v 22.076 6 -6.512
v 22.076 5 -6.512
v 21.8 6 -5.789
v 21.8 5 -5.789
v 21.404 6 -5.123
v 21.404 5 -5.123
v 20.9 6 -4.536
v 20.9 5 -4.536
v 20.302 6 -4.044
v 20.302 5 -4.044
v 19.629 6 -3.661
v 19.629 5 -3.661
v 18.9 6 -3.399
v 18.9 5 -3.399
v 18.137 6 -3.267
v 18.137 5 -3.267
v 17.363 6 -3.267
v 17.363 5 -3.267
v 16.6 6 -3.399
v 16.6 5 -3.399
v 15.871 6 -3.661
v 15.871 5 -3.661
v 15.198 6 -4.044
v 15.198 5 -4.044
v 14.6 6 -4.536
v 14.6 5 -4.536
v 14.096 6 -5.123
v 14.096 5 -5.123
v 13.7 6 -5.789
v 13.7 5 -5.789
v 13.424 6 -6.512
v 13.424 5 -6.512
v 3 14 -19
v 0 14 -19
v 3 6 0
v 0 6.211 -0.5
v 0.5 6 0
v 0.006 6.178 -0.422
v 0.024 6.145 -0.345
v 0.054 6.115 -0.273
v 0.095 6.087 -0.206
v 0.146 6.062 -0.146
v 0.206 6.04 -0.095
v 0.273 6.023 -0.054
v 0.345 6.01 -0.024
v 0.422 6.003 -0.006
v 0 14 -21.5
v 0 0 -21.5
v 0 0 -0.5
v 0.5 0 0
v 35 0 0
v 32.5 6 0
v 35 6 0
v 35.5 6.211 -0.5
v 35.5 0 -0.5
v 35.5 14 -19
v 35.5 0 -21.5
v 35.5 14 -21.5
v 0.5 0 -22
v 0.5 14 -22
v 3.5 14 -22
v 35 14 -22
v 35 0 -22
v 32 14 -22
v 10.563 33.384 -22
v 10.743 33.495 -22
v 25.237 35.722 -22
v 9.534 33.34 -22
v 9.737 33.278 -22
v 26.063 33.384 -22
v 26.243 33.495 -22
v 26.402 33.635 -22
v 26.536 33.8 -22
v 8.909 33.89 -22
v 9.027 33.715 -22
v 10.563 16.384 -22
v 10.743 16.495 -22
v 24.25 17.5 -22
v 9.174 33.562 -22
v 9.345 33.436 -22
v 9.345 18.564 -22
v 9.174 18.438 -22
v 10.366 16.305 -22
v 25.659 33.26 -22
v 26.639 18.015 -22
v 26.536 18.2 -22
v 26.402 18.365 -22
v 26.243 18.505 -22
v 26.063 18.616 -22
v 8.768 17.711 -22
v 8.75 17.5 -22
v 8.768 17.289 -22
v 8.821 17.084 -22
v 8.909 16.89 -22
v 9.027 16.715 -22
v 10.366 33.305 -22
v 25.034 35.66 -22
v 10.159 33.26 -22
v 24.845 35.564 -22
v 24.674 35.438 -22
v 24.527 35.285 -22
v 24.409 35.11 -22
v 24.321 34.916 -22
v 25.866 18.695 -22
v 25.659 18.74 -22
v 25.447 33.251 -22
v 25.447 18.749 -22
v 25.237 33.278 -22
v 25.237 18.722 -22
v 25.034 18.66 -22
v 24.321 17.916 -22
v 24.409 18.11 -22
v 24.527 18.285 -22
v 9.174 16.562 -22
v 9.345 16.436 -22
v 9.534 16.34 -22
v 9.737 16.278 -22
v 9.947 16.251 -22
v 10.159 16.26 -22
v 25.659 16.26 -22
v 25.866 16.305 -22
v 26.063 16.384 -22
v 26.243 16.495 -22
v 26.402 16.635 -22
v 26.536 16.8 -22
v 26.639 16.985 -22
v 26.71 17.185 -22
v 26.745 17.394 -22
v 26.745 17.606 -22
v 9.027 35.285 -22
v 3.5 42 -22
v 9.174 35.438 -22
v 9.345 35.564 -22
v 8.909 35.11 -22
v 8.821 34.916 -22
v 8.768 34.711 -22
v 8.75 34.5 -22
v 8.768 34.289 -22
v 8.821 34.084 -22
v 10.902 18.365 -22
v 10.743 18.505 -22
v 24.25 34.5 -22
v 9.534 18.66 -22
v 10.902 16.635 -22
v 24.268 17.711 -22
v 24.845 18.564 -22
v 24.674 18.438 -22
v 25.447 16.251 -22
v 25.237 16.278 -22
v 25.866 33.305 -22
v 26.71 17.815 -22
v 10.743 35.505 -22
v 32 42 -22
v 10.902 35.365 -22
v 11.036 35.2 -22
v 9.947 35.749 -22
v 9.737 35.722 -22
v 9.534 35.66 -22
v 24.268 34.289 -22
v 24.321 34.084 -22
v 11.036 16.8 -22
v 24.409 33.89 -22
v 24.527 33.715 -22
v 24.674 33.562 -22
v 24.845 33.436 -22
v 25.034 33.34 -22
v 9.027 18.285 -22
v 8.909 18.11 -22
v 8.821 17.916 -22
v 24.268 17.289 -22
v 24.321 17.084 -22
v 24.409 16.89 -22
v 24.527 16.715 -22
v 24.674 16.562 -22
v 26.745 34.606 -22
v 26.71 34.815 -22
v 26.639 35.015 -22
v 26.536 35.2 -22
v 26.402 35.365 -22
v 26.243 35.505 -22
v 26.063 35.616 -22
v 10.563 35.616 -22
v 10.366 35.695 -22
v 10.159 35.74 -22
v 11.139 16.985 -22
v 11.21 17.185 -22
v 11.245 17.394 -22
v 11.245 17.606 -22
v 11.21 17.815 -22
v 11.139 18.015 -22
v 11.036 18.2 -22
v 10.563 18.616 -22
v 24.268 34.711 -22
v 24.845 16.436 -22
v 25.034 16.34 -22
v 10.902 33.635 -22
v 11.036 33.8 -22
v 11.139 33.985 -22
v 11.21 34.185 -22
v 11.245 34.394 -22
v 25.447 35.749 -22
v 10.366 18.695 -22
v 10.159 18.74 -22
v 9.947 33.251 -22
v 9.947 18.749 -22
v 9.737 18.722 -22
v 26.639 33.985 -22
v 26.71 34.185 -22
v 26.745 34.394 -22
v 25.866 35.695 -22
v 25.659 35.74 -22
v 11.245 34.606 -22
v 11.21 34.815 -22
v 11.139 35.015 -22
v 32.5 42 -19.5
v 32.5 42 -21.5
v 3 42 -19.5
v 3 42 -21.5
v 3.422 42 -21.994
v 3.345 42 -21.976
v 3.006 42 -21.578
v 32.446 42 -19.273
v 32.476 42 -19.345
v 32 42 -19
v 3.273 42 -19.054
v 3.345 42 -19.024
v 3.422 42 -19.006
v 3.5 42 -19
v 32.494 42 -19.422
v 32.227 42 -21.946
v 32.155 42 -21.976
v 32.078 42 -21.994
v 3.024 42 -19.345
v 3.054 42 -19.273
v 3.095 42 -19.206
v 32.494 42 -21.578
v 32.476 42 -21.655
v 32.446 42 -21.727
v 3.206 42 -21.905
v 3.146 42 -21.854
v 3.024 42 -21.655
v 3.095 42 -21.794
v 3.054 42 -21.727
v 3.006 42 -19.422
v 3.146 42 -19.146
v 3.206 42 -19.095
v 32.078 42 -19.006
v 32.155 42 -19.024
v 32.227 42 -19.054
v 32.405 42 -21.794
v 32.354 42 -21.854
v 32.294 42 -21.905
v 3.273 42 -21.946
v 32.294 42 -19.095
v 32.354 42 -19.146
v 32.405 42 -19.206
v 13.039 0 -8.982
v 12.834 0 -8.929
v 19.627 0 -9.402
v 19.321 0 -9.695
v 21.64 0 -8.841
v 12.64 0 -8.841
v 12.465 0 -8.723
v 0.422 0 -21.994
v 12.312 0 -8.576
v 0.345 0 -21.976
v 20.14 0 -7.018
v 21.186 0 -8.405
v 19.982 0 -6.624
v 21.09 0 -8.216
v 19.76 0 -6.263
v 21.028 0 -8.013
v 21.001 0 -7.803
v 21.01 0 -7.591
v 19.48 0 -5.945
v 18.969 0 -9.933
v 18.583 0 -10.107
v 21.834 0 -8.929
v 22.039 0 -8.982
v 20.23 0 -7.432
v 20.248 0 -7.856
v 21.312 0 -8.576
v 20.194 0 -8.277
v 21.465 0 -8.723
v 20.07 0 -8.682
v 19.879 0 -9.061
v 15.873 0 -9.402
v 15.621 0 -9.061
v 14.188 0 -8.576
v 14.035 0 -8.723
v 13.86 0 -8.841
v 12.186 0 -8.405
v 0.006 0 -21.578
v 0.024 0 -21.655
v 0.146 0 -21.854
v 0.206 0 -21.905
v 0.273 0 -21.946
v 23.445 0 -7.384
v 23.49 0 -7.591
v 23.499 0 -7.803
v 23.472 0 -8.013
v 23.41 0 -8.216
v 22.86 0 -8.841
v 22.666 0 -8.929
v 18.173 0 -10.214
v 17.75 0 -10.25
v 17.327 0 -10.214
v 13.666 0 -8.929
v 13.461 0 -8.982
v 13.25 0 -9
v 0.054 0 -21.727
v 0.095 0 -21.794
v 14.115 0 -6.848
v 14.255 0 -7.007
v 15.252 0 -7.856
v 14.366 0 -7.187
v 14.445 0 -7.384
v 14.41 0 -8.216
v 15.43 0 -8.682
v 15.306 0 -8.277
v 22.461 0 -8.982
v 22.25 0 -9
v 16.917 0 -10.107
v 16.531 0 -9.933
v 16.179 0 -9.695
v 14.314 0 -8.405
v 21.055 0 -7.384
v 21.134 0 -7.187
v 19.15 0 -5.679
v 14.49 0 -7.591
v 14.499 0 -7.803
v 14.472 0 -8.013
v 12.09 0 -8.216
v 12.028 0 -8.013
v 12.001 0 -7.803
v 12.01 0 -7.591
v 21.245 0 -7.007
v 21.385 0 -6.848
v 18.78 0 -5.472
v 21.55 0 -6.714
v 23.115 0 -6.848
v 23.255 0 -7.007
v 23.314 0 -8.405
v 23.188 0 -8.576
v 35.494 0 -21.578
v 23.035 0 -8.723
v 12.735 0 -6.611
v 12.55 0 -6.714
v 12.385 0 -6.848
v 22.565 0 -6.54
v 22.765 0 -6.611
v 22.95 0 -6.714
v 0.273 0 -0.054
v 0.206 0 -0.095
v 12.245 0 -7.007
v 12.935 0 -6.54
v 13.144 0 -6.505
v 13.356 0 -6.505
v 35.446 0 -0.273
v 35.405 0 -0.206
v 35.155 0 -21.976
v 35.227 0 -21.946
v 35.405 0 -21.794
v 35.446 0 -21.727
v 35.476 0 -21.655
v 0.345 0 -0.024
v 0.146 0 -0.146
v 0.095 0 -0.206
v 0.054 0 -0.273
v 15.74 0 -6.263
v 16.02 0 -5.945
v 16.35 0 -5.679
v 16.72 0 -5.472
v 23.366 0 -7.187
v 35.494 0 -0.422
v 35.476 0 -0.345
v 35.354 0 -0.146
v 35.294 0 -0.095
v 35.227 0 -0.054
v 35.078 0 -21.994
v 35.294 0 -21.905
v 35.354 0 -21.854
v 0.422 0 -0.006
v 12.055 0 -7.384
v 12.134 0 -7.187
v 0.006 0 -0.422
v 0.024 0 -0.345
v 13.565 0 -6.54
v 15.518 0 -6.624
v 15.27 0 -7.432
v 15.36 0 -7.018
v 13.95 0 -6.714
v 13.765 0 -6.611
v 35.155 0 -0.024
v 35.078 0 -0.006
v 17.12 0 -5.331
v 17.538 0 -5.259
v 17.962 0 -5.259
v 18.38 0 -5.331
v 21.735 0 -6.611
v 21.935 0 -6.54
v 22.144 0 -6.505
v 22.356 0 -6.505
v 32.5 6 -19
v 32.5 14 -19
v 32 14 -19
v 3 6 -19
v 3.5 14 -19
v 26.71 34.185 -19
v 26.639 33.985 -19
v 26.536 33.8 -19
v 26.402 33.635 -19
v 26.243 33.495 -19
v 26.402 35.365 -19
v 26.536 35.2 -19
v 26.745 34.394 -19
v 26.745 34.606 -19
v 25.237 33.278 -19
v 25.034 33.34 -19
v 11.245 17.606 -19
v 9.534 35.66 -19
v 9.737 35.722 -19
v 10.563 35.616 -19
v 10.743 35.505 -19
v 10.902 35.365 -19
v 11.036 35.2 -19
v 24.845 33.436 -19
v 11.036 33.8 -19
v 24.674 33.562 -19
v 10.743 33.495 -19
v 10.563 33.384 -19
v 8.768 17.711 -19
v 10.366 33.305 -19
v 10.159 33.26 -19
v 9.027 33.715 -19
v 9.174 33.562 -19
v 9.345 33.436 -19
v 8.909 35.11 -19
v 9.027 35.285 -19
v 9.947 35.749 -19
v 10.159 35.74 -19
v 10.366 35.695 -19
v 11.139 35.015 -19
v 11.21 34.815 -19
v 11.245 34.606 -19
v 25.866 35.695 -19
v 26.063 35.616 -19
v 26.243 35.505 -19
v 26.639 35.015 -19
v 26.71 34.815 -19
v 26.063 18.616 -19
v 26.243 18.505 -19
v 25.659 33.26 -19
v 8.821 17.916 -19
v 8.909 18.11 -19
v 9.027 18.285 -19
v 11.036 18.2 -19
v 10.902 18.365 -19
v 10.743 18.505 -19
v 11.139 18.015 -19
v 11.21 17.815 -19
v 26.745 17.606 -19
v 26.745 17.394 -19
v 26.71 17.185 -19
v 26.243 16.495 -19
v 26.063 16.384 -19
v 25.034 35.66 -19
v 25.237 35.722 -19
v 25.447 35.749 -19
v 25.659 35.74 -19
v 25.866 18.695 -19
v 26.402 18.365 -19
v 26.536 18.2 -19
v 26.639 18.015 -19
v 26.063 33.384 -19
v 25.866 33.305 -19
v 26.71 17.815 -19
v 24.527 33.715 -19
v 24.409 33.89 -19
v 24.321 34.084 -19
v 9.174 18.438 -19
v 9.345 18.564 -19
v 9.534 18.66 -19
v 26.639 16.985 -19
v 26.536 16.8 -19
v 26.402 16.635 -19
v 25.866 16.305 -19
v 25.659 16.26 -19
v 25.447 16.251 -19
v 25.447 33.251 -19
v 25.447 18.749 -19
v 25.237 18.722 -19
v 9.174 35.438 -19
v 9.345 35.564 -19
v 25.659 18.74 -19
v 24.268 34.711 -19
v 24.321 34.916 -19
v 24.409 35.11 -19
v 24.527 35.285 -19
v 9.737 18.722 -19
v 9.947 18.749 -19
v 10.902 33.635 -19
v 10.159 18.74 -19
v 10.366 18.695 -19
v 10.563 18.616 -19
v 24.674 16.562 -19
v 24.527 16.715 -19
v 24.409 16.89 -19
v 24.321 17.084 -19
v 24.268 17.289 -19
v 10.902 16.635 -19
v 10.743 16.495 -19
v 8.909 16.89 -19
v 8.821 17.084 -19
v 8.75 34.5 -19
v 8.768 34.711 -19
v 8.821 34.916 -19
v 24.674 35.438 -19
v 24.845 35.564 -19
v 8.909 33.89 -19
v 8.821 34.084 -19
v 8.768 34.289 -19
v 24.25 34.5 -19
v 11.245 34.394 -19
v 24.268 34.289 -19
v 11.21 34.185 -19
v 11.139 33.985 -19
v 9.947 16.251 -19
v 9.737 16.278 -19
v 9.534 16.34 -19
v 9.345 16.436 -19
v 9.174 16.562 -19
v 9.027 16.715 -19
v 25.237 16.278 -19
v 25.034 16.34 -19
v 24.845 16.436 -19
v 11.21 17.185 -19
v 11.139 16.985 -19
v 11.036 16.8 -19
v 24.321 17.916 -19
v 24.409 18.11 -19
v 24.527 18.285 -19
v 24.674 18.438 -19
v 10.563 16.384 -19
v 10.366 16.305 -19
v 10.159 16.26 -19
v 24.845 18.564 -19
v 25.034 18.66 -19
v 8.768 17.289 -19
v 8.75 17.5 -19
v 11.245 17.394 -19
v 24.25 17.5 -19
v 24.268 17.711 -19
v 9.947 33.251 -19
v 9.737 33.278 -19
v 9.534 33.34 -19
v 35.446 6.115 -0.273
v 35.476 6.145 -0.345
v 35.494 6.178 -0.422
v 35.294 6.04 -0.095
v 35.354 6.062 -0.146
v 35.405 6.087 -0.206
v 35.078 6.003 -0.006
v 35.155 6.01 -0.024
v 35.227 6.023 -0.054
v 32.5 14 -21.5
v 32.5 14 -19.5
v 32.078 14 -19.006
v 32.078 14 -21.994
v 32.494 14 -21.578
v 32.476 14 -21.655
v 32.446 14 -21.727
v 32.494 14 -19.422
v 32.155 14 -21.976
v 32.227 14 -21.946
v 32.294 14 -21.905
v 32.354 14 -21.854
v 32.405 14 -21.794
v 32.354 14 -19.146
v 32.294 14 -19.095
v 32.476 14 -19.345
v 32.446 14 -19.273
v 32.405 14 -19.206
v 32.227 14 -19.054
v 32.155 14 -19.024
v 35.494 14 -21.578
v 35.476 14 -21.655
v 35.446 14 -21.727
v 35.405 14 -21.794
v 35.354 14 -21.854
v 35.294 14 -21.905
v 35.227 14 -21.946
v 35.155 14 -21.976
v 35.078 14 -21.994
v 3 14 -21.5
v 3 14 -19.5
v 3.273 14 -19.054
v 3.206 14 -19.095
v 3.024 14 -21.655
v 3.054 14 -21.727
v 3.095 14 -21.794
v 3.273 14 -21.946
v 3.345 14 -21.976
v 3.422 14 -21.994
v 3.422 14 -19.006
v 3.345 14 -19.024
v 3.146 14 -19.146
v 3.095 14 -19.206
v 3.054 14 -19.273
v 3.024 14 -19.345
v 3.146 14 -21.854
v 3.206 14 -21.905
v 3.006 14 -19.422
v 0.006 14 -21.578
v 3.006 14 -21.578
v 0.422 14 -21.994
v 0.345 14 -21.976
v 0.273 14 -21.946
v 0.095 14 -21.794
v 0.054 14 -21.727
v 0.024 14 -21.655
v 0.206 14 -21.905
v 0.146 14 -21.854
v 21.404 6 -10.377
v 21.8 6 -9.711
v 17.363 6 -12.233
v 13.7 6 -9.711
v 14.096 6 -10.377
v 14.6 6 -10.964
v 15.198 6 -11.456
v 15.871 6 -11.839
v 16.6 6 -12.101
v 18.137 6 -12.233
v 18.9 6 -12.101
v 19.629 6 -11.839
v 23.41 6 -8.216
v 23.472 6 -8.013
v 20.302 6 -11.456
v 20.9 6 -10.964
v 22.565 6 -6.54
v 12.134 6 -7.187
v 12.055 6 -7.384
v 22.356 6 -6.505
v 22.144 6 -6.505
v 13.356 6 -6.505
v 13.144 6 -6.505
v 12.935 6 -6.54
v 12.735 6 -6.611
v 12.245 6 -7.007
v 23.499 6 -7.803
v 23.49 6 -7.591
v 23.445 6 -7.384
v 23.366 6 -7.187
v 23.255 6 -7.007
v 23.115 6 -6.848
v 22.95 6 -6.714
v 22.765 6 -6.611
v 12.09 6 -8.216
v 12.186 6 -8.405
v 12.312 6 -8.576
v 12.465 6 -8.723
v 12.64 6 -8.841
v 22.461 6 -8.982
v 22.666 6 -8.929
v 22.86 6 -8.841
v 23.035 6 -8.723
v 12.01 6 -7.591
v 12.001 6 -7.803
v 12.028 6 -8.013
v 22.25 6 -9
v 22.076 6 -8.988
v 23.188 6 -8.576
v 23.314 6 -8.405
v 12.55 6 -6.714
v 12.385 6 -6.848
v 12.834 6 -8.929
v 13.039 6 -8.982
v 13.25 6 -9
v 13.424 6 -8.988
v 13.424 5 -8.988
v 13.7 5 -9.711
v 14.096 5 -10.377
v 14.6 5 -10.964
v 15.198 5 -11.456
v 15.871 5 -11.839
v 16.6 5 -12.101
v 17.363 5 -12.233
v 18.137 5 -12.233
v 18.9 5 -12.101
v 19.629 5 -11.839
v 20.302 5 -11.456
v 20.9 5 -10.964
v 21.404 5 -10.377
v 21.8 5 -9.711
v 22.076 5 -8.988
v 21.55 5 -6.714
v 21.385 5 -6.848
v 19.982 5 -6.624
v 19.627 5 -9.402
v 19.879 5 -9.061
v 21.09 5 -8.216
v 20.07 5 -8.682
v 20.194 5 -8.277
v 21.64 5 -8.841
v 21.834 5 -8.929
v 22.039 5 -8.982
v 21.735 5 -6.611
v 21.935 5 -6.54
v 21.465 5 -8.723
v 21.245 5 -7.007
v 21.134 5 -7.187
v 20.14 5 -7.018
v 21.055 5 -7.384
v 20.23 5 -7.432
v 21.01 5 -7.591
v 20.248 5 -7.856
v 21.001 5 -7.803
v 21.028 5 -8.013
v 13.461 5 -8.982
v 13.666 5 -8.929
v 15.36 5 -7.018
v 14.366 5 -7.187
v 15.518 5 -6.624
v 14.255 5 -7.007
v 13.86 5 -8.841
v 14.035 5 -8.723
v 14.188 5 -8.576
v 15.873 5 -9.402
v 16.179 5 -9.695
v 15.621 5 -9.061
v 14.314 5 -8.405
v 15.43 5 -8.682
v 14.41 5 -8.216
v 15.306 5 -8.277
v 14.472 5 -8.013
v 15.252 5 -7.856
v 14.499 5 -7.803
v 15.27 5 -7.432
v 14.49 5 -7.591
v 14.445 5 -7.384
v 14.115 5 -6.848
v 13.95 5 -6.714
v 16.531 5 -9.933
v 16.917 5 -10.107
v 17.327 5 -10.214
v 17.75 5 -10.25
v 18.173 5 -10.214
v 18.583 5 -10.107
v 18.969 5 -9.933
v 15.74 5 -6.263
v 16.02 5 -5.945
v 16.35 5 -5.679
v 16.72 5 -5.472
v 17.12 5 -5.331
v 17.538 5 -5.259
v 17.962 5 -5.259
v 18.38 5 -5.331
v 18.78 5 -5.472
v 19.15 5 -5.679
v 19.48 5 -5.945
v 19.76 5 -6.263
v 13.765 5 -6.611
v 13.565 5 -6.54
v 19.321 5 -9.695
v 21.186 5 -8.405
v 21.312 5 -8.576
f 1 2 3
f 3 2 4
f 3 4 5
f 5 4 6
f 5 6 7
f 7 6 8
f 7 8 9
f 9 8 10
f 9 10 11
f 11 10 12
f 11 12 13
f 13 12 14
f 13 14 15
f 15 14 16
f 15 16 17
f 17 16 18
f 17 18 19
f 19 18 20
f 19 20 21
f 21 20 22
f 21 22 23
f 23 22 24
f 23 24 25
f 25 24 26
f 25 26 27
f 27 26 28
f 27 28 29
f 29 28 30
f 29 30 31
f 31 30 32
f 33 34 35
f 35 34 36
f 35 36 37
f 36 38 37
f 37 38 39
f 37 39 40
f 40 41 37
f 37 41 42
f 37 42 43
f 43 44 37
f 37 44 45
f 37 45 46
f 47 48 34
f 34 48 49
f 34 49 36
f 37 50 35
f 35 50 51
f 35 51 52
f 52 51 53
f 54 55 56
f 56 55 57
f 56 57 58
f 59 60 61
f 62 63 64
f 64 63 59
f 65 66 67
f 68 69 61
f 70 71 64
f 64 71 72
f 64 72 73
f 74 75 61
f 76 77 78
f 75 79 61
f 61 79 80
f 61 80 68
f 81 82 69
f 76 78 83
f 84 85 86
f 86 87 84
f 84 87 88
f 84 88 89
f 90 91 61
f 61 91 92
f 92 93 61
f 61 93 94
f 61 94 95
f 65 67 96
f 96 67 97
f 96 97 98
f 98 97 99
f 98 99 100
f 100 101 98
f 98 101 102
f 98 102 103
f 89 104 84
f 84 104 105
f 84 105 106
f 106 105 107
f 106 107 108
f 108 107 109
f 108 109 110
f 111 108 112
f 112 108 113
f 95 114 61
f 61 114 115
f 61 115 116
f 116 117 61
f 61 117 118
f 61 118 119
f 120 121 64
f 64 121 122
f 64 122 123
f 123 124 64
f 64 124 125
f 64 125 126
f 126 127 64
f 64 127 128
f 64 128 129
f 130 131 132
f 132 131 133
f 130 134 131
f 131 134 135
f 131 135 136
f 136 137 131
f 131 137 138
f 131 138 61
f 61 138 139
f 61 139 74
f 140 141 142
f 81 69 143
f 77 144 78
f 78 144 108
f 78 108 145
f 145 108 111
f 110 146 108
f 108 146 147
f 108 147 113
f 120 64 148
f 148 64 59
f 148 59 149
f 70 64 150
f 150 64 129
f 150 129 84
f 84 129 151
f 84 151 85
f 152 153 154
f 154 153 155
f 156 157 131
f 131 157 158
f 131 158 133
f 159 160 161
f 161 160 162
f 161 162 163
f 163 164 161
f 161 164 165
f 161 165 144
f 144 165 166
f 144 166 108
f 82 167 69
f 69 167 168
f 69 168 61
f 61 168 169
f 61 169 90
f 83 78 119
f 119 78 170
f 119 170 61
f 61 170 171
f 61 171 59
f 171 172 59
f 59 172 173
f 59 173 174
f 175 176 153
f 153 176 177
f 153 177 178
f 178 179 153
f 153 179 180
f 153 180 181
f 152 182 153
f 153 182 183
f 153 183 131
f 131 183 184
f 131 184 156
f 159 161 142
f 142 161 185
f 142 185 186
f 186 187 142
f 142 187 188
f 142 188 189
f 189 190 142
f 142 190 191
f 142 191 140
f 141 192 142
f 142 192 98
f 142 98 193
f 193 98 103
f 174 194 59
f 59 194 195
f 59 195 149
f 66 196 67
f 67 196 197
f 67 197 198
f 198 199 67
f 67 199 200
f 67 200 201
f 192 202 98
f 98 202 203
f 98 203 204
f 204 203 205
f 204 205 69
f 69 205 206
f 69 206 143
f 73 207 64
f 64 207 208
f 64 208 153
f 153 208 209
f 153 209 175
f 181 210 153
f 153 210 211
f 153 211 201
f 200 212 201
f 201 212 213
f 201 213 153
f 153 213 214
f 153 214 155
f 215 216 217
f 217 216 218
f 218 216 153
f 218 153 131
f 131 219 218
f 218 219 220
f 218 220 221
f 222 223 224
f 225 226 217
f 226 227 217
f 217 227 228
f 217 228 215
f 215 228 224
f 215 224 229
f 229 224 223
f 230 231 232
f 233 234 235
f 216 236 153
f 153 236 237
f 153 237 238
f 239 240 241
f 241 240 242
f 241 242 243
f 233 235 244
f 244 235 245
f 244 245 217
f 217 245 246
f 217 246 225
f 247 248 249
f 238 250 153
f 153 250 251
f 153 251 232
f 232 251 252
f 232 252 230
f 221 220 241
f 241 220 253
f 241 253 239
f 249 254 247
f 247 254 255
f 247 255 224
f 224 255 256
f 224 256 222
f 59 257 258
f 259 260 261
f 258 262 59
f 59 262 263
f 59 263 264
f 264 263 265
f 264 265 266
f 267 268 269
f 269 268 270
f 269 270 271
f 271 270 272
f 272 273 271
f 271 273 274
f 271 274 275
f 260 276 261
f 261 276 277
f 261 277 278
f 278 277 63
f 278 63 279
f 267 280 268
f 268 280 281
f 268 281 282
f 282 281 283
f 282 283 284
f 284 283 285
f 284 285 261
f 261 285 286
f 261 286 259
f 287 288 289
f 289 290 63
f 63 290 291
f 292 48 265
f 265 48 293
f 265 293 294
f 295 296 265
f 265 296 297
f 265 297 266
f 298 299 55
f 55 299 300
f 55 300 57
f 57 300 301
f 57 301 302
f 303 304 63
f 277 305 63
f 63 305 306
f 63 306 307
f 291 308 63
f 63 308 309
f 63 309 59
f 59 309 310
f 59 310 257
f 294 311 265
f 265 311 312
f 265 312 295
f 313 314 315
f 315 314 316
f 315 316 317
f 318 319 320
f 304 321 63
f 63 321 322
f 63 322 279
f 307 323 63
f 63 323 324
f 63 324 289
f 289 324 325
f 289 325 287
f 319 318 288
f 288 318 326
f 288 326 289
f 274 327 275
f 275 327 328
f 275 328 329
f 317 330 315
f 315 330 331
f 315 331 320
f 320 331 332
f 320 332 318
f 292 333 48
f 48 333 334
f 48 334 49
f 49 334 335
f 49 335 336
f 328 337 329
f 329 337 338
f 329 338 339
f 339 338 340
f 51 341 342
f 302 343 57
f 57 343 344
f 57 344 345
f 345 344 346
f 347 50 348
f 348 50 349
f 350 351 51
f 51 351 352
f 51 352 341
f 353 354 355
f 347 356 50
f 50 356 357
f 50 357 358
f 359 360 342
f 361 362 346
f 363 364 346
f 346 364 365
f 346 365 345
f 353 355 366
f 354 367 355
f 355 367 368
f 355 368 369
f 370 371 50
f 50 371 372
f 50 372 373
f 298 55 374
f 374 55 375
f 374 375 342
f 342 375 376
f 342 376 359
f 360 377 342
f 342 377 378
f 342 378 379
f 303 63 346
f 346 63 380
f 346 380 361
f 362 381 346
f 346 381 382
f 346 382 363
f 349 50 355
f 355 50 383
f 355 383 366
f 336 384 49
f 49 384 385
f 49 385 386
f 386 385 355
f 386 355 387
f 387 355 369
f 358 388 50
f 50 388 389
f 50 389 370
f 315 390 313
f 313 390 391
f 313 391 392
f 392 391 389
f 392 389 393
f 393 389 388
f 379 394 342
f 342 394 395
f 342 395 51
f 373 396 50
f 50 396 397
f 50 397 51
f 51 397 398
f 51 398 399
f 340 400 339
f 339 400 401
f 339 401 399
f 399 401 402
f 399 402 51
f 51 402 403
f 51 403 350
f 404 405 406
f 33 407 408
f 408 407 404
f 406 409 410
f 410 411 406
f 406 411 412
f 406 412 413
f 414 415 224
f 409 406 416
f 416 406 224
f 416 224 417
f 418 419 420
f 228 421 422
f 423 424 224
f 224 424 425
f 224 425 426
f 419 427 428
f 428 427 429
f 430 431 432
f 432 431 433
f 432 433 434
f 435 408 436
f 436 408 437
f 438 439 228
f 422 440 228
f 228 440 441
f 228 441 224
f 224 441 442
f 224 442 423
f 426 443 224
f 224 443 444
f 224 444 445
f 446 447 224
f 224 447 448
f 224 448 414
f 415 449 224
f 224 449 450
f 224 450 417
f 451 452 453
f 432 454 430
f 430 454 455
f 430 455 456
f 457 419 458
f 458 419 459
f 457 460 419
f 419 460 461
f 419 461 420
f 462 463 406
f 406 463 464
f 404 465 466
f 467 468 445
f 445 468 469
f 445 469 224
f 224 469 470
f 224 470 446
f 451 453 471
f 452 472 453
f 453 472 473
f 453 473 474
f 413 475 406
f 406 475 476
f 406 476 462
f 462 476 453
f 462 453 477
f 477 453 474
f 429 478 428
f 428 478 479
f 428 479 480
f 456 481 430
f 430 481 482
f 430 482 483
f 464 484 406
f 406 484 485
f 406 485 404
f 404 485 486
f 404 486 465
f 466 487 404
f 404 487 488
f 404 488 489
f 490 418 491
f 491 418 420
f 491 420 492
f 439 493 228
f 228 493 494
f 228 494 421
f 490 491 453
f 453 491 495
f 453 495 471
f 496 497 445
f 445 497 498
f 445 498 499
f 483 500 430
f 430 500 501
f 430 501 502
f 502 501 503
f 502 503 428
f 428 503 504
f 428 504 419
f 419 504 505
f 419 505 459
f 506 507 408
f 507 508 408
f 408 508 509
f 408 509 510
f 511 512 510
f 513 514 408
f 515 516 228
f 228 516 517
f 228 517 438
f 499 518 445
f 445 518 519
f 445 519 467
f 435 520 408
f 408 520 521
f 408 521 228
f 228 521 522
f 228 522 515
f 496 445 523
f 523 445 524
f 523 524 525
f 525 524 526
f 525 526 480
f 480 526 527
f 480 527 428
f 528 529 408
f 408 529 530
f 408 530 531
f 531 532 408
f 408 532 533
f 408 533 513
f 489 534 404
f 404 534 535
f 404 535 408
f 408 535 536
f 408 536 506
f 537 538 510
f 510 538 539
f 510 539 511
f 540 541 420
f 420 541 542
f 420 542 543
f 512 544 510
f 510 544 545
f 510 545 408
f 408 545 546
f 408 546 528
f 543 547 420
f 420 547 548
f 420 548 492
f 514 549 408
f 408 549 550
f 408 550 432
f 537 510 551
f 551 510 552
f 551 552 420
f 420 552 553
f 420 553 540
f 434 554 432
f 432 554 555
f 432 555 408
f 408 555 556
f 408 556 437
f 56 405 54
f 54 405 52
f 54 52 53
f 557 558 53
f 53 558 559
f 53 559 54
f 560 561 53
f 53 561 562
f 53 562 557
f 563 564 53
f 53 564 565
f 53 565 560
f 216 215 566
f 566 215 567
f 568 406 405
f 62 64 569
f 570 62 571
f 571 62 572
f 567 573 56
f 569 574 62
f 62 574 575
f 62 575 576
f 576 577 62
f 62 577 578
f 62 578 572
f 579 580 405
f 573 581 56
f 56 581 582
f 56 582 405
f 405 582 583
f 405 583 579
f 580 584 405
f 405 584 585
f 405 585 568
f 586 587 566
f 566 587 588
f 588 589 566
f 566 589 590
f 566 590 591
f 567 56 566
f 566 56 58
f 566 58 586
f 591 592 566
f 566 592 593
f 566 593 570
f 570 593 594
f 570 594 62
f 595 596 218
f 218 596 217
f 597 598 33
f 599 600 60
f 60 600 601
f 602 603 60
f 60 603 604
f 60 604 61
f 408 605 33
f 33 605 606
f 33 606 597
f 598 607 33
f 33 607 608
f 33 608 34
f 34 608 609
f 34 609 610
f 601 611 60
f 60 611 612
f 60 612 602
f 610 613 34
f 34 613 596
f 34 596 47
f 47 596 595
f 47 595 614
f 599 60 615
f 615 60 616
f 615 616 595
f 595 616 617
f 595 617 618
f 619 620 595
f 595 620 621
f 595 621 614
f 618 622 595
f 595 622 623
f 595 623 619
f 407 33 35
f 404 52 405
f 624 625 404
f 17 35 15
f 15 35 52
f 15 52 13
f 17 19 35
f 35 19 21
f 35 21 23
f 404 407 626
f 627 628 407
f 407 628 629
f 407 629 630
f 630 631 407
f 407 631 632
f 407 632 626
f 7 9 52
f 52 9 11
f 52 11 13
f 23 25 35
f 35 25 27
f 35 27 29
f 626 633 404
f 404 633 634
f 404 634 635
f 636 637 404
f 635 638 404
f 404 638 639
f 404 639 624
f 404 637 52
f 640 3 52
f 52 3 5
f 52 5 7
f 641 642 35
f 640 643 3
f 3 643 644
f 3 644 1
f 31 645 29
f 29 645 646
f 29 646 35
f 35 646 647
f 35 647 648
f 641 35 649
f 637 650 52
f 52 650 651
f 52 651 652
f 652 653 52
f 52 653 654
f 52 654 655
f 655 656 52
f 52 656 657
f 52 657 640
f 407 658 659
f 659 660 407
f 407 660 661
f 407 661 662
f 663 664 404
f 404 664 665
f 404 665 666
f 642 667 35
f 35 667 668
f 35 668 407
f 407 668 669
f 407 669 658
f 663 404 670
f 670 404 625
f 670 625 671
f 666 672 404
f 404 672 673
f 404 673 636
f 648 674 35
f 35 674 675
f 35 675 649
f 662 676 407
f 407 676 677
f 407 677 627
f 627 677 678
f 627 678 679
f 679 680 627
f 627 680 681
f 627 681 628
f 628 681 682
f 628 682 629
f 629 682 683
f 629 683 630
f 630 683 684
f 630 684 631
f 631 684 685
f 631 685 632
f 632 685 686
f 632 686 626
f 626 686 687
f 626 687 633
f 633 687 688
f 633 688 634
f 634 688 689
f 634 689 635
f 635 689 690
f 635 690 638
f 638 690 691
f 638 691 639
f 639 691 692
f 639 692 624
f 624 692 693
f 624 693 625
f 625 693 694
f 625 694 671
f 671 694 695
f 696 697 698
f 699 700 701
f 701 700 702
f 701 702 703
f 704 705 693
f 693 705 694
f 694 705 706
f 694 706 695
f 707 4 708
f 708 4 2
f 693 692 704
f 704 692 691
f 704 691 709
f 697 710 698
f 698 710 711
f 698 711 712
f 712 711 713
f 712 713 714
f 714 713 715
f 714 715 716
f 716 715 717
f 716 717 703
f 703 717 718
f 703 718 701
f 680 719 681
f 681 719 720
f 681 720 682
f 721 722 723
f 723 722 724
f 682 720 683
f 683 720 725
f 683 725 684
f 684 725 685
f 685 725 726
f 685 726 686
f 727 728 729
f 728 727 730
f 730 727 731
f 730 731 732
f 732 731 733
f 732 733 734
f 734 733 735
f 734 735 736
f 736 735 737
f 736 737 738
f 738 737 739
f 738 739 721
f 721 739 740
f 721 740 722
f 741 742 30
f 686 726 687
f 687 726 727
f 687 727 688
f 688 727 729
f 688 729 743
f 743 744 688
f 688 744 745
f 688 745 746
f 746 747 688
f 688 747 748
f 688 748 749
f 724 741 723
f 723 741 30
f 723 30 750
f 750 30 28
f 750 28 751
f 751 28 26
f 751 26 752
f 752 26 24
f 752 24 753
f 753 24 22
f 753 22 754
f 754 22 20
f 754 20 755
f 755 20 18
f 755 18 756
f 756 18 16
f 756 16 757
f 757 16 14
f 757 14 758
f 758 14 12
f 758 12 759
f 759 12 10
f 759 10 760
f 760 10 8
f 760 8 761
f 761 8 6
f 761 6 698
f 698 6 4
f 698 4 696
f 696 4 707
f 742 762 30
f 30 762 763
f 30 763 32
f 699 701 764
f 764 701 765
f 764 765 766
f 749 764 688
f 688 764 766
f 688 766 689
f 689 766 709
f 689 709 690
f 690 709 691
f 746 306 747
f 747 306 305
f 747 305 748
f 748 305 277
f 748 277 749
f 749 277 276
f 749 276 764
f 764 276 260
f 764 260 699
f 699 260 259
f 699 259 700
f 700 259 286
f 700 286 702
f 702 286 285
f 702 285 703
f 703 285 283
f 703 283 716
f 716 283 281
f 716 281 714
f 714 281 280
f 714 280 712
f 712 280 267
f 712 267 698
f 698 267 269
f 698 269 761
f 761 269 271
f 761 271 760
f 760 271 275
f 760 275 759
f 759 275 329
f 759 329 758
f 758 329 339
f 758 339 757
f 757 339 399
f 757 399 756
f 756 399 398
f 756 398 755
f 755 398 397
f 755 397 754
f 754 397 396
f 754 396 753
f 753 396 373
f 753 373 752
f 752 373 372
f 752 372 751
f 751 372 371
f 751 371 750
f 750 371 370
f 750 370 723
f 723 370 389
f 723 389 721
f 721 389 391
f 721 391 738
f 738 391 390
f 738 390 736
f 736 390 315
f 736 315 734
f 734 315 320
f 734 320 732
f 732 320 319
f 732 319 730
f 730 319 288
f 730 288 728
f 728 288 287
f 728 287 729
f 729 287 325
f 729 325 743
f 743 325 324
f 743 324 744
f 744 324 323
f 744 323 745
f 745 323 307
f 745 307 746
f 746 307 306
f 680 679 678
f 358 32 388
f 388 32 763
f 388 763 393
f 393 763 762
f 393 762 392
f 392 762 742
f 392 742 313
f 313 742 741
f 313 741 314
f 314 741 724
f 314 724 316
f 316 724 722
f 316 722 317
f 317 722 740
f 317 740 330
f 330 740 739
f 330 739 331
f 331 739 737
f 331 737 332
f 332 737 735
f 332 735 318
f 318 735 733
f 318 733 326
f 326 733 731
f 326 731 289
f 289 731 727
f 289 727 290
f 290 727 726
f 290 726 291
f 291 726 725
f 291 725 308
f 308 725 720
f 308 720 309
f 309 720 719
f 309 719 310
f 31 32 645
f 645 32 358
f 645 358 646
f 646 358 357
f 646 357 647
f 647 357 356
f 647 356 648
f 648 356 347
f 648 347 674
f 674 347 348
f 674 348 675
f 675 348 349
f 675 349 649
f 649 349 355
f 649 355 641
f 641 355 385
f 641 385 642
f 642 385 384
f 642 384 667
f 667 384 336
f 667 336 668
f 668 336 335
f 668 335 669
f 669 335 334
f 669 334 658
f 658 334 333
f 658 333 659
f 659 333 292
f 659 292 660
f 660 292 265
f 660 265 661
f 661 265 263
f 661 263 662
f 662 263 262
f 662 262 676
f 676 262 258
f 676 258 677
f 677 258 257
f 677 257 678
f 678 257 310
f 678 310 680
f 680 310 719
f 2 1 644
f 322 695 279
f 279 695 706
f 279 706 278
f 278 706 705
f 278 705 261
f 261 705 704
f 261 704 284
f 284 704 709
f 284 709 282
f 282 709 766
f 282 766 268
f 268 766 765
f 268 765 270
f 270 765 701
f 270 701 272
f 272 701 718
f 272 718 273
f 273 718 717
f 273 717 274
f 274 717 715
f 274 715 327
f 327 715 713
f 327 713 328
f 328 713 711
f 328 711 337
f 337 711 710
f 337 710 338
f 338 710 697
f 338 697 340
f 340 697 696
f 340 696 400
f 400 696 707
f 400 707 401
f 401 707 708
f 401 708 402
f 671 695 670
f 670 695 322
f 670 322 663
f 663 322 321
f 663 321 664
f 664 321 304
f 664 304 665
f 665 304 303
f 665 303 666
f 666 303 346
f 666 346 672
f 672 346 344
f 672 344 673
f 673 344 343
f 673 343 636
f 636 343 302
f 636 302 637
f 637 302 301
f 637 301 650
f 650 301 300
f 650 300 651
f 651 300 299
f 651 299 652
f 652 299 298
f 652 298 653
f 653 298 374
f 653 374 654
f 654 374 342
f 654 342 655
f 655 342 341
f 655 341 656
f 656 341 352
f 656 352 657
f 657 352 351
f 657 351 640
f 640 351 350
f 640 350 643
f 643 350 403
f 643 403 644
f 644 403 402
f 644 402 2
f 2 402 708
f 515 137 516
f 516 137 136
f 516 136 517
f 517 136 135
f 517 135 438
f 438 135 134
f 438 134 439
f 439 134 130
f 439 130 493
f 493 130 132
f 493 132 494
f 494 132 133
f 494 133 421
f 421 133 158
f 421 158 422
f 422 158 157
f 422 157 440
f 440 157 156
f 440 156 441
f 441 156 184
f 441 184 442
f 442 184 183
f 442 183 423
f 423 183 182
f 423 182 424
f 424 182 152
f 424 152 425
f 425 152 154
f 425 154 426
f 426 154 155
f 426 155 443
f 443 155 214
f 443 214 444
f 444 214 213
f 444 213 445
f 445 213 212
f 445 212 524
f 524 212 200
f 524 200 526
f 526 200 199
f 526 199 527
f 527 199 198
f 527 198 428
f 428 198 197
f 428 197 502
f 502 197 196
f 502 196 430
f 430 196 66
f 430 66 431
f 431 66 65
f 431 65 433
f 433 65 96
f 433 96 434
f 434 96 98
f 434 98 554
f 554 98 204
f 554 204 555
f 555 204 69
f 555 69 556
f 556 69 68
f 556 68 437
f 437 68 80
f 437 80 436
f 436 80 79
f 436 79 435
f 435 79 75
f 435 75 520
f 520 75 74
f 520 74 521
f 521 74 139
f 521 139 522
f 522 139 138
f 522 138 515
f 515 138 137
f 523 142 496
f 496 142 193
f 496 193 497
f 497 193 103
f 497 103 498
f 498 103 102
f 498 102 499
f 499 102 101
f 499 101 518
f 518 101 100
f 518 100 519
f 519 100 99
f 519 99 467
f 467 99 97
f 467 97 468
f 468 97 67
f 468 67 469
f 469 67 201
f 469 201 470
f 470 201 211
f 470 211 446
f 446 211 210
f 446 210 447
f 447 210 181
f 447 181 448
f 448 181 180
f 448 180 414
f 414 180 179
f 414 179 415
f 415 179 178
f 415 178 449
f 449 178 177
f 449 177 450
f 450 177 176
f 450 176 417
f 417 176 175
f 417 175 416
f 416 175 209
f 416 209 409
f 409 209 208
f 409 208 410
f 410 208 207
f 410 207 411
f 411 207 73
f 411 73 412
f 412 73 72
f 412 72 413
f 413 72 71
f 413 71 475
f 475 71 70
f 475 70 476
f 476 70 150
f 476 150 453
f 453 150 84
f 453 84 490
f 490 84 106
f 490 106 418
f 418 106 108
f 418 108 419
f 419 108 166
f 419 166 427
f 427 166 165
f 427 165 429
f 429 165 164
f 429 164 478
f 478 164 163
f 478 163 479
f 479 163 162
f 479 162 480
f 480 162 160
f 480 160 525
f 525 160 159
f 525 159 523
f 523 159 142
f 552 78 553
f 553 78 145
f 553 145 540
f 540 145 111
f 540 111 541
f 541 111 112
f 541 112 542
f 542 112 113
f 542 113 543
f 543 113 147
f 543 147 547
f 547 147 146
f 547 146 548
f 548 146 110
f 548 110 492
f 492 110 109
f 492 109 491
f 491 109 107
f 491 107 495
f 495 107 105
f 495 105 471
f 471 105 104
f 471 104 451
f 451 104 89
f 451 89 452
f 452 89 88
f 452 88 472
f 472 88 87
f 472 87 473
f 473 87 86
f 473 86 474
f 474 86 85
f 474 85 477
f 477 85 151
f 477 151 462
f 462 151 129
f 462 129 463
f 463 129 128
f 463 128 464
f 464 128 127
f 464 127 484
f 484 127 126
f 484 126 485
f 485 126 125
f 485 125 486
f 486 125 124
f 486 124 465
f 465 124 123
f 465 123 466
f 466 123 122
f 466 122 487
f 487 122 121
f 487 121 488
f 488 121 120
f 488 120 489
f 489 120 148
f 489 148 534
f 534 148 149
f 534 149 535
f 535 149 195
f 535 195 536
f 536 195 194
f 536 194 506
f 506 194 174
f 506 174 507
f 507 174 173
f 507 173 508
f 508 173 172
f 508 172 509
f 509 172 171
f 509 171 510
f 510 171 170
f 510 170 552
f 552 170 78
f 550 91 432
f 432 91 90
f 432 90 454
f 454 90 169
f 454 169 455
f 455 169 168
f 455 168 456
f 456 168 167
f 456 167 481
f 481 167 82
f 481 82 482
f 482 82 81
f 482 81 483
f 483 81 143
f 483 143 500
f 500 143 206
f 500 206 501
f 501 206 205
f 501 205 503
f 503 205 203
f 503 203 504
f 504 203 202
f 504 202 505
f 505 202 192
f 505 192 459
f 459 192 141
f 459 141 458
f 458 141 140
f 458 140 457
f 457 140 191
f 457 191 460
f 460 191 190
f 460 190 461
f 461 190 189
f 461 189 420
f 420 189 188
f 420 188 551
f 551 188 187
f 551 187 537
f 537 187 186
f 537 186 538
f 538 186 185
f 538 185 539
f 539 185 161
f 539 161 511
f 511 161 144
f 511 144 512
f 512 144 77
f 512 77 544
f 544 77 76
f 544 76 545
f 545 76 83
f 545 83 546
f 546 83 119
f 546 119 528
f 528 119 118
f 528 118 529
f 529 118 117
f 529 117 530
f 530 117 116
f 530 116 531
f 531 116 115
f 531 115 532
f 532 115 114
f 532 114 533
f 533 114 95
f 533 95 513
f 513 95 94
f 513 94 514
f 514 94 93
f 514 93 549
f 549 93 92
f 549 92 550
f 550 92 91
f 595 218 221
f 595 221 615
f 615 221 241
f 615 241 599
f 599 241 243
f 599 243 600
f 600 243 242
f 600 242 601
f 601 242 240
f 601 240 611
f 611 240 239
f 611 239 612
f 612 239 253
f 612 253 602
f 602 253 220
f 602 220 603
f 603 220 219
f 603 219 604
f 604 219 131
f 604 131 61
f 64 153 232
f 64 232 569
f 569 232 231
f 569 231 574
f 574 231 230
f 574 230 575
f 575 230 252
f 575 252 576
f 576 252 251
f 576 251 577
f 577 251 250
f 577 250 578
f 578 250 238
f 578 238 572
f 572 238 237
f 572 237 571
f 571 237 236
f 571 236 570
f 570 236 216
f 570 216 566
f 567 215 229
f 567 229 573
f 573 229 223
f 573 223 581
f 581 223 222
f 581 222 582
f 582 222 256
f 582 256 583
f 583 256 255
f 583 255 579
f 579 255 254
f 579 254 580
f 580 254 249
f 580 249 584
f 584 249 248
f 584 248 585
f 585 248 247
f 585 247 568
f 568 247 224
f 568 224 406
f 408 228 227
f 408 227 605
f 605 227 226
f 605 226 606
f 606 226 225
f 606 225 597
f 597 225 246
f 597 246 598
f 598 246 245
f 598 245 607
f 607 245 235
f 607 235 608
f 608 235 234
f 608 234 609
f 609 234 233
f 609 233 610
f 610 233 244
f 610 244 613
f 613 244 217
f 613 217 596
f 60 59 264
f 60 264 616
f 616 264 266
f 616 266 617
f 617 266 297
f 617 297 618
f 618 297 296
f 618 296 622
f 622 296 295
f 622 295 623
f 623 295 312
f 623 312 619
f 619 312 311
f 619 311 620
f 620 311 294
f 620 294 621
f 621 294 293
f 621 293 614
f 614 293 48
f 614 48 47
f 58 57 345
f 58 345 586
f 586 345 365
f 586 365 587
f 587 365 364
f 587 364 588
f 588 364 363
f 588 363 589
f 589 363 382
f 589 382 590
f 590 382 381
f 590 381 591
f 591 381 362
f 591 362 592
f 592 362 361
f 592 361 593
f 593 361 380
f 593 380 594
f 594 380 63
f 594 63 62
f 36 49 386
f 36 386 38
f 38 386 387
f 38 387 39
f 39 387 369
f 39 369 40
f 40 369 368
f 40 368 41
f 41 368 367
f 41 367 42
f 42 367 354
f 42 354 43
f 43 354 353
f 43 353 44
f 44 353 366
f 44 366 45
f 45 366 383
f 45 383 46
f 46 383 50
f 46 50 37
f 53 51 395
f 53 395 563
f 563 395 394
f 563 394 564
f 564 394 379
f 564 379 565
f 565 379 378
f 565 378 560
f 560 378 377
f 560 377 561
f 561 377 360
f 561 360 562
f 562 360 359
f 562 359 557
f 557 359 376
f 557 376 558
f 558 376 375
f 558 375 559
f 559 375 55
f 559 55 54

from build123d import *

# Parameters (mm, degrees)
SKETCH1_W             = 35.5
SKETCH1_H             = 22
BOSS_EXTRUDE1_DEPTH   = 42
CUT_EXTRUDE1_DEPTH    = 60.230482017
SKETCH3_W             = 3
SKETCH3_H             = 3
CUT_EXTRUDE2_DEPTH    = 28
SKETCH4_W             = 29.5
SKETCH4_H             = 10
CUT_EXTRUDE3_DEPTH    = 19
F_2_5MM_DOWEL_HOLE1_D = 2.5
F_2_5MM_DOWEL_HOLE2_D = 2.5
FILLET1_R             = 0.5


with BuildPart() as part:
    # Sketch1 → Boss-Extrude1 (new body)
    with BuildSketch(Plane(origin=(0, 0, 0), x_dir=(1, 0, 0), z_dir=(0, 1, 0))):
        with Locations((17.75, 11)):
            Rectangle(SKETCH1_W, SKETCH1_H)
    extrude(amount=BOSS_EXTRUDE1_DEPTH)

    # Sketch2 → Cut-Extrude1 (cut, through all)
    with BuildSketch(Plane(origin=(35.5, 0, 0), x_dir=(0, 0, -1), z_dir=(1, 0, 0))):
        Polygon((0, 6), (19, 14), (19, 42), (0, 42), align=None)
    extrude(amount=-CUT_EXTRUDE1_DEPTH, mode=Mode.SUBTRACT)

    # Sketch3 → Cut-Extrude2 (cut)
    with BuildSketch(Plane(origin=(0, 42, 0), x_dir=(1, 0, 0), z_dir=(0, 1, 0))):
        with Locations((1.5, 20.5)):
            Rectangle(SKETCH3_W, SKETCH3_H)
        with Locations((34, 20.5)):
            Rectangle(SKETCH3_W, SKETCH3_H)
    extrude(amount=-CUT_EXTRUDE2_DEPTH, mode=Mode.SUBTRACT)

    # Sketch4 → Cut-Extrude3 (cut)
    with BuildSketch(Plane.XY):
        with Locations((17.75, 11)):
            Rectangle(SKETCH4_W, SKETCH4_H)
    extrude(amount=-CUT_EXTRUDE3_DEPTH, mode=Mode.SUBTRACT)

    # Sketch6 → Hole1 (revolve, cut)
    with BuildSketch(Plane(origin=(17.75, 0, -7.75), x_dir=(0, 0, -1), z_dir=(1, 0, 0))):
        Polygon((0, 0), (0, 42), (4.5, 42), (4.5, 5), (2.5, 5), (2.5, 0), align=None)
    revolve(axis=Axis((17.75, 110, -7.75), (0, -1, 0)), mode=Mode.SUBTRACT)

    # Ø2.5mm Dowel Hole1 (through all)
    with Locations(Plane(origin=(0, 0, 0), x_dir=(-1, 0, 0), z_dir=(0, -1, 0))):
        with Locations((-22.25, 7.75), (-13.25, 7.75)):
            Hole(F_2_5MM_DOWEL_HOLE1_D / 2)

    # Ø2.5mm Dowel Hole2 (through all)
    with Locations(Plane(origin=(0, 0, -22), x_dir=(-1, 0, 0), z_dir=(0, 0, -1))):
        with Locations((-10, 17.5), (-25.5, 17.5), (-25.5, 34.5), (-10, 34.5)):
            Hole(F_2_5MM_DOWEL_HOLE2_D / 2)

    # Fillet1
    # the kernel refuses this fillet: 0.5 mm, written as the material it takes off along each edge
    with BuildSketch(Plane(origin=(35.5, -1.25, 0), x_dir=(-1, 0, 0), z_dir=(0, 1, 0))) as fillet1_piece_1:
        with BuildLine():
            CenterArc((FILLET1_R, -FILLET1_R), FILLET1_R, 90, 90)
            Line((0, -FILLET1_R), (0, 0))
            Line((0, 0), (FILLET1_R, 0))
        make_face()
    extrude(amount=8.5, mode=Mode.SUBTRACT)
    with BuildSketch(Plane(origin=(0, -1.25, 0), x_dir=(1, 0, 0), z_dir=(0, 1, 0))) as fillet1_piece_2:
        with BuildLine():
            CenterArc((FILLET1_R, FILLET1_R), FILLET1_R, 180, 90)
            Line((0, FILLET1_R), (0, 0))
            Line((0, 0), (FILLET1_R, 0))
        make_face()
    extrude(amount=8.5, mode=Mode.SUBTRACT)
    with BuildSketch(Plane(origin=(0, -1.25, -22), x_dir=(0, 0, 1), z_dir=(0, 1, 0))) as fillet1_piece_3:
        with BuildLine():
            CenterArc((FILLET1_R, FILLET1_R), FILLET1_R, 180, 90)
            Line((0, FILLET1_R), (0, 0))
            Line((0, 0), (FILLET1_R, 0))
        make_face()
    extrude(amount=16.5, mode=Mode.SUBTRACT)
    with BuildSketch(Plane(origin=(35.5, -1.25, -22), x_dir=(0, 0, 1), z_dir=(0, 1, 0))) as fillet1_piece_4:
        with BuildLine():
            CenterArc((FILLET1_R, -FILLET1_R), FILLET1_R, 90, 90)
            Line((0, -FILLET1_R), (0, 0))
            Line((0, 0), (FILLET1_R, 0))
        make_face()
    extrude(amount=16.5, mode=Mode.SUBTRACT)
    with BuildSketch(Plane(origin=(3, 43.25, -22), x_dir=(1, 0, 0), z_dir=(0, -1, 0))) as fillet1_piece_5:
        with BuildLine():
            CenterArc((FILLET1_R, FILLET1_R), FILLET1_R, 180, 90)
            Line((0, FILLET1_R), (0, 0))
            Line((0, 0), (FILLET1_R, 0))
        make_face()
    extrude(amount=29.25, mode=Mode.SUBTRACT)
    with BuildSketch(Plane(origin=(3, 43.25, -19), x_dir=(1, 0, 0), z_dir=(0, -1, 0)), Plane(origin=(32.5, 14, -19), x_dir=(-1, 0, 0), z_dir=(0, 1, 0)), Plane(origin=(32.5, 43.25, -22), x_dir=(-1, 0, 0), z_dir=(0, -1, 0))) as fillet1_piece_6:
        with BuildLine():
            CenterArc((FILLET1_R, -FILLET1_R), FILLET1_R, 90, 90)
            Line((0, -FILLET1_R), (0, 0))
            Line((0, 0), (FILLET1_R, 0))
        make_face()
    extrude(amount=29.25, mode=Mode.SUBTRACT)


solid = part.part
